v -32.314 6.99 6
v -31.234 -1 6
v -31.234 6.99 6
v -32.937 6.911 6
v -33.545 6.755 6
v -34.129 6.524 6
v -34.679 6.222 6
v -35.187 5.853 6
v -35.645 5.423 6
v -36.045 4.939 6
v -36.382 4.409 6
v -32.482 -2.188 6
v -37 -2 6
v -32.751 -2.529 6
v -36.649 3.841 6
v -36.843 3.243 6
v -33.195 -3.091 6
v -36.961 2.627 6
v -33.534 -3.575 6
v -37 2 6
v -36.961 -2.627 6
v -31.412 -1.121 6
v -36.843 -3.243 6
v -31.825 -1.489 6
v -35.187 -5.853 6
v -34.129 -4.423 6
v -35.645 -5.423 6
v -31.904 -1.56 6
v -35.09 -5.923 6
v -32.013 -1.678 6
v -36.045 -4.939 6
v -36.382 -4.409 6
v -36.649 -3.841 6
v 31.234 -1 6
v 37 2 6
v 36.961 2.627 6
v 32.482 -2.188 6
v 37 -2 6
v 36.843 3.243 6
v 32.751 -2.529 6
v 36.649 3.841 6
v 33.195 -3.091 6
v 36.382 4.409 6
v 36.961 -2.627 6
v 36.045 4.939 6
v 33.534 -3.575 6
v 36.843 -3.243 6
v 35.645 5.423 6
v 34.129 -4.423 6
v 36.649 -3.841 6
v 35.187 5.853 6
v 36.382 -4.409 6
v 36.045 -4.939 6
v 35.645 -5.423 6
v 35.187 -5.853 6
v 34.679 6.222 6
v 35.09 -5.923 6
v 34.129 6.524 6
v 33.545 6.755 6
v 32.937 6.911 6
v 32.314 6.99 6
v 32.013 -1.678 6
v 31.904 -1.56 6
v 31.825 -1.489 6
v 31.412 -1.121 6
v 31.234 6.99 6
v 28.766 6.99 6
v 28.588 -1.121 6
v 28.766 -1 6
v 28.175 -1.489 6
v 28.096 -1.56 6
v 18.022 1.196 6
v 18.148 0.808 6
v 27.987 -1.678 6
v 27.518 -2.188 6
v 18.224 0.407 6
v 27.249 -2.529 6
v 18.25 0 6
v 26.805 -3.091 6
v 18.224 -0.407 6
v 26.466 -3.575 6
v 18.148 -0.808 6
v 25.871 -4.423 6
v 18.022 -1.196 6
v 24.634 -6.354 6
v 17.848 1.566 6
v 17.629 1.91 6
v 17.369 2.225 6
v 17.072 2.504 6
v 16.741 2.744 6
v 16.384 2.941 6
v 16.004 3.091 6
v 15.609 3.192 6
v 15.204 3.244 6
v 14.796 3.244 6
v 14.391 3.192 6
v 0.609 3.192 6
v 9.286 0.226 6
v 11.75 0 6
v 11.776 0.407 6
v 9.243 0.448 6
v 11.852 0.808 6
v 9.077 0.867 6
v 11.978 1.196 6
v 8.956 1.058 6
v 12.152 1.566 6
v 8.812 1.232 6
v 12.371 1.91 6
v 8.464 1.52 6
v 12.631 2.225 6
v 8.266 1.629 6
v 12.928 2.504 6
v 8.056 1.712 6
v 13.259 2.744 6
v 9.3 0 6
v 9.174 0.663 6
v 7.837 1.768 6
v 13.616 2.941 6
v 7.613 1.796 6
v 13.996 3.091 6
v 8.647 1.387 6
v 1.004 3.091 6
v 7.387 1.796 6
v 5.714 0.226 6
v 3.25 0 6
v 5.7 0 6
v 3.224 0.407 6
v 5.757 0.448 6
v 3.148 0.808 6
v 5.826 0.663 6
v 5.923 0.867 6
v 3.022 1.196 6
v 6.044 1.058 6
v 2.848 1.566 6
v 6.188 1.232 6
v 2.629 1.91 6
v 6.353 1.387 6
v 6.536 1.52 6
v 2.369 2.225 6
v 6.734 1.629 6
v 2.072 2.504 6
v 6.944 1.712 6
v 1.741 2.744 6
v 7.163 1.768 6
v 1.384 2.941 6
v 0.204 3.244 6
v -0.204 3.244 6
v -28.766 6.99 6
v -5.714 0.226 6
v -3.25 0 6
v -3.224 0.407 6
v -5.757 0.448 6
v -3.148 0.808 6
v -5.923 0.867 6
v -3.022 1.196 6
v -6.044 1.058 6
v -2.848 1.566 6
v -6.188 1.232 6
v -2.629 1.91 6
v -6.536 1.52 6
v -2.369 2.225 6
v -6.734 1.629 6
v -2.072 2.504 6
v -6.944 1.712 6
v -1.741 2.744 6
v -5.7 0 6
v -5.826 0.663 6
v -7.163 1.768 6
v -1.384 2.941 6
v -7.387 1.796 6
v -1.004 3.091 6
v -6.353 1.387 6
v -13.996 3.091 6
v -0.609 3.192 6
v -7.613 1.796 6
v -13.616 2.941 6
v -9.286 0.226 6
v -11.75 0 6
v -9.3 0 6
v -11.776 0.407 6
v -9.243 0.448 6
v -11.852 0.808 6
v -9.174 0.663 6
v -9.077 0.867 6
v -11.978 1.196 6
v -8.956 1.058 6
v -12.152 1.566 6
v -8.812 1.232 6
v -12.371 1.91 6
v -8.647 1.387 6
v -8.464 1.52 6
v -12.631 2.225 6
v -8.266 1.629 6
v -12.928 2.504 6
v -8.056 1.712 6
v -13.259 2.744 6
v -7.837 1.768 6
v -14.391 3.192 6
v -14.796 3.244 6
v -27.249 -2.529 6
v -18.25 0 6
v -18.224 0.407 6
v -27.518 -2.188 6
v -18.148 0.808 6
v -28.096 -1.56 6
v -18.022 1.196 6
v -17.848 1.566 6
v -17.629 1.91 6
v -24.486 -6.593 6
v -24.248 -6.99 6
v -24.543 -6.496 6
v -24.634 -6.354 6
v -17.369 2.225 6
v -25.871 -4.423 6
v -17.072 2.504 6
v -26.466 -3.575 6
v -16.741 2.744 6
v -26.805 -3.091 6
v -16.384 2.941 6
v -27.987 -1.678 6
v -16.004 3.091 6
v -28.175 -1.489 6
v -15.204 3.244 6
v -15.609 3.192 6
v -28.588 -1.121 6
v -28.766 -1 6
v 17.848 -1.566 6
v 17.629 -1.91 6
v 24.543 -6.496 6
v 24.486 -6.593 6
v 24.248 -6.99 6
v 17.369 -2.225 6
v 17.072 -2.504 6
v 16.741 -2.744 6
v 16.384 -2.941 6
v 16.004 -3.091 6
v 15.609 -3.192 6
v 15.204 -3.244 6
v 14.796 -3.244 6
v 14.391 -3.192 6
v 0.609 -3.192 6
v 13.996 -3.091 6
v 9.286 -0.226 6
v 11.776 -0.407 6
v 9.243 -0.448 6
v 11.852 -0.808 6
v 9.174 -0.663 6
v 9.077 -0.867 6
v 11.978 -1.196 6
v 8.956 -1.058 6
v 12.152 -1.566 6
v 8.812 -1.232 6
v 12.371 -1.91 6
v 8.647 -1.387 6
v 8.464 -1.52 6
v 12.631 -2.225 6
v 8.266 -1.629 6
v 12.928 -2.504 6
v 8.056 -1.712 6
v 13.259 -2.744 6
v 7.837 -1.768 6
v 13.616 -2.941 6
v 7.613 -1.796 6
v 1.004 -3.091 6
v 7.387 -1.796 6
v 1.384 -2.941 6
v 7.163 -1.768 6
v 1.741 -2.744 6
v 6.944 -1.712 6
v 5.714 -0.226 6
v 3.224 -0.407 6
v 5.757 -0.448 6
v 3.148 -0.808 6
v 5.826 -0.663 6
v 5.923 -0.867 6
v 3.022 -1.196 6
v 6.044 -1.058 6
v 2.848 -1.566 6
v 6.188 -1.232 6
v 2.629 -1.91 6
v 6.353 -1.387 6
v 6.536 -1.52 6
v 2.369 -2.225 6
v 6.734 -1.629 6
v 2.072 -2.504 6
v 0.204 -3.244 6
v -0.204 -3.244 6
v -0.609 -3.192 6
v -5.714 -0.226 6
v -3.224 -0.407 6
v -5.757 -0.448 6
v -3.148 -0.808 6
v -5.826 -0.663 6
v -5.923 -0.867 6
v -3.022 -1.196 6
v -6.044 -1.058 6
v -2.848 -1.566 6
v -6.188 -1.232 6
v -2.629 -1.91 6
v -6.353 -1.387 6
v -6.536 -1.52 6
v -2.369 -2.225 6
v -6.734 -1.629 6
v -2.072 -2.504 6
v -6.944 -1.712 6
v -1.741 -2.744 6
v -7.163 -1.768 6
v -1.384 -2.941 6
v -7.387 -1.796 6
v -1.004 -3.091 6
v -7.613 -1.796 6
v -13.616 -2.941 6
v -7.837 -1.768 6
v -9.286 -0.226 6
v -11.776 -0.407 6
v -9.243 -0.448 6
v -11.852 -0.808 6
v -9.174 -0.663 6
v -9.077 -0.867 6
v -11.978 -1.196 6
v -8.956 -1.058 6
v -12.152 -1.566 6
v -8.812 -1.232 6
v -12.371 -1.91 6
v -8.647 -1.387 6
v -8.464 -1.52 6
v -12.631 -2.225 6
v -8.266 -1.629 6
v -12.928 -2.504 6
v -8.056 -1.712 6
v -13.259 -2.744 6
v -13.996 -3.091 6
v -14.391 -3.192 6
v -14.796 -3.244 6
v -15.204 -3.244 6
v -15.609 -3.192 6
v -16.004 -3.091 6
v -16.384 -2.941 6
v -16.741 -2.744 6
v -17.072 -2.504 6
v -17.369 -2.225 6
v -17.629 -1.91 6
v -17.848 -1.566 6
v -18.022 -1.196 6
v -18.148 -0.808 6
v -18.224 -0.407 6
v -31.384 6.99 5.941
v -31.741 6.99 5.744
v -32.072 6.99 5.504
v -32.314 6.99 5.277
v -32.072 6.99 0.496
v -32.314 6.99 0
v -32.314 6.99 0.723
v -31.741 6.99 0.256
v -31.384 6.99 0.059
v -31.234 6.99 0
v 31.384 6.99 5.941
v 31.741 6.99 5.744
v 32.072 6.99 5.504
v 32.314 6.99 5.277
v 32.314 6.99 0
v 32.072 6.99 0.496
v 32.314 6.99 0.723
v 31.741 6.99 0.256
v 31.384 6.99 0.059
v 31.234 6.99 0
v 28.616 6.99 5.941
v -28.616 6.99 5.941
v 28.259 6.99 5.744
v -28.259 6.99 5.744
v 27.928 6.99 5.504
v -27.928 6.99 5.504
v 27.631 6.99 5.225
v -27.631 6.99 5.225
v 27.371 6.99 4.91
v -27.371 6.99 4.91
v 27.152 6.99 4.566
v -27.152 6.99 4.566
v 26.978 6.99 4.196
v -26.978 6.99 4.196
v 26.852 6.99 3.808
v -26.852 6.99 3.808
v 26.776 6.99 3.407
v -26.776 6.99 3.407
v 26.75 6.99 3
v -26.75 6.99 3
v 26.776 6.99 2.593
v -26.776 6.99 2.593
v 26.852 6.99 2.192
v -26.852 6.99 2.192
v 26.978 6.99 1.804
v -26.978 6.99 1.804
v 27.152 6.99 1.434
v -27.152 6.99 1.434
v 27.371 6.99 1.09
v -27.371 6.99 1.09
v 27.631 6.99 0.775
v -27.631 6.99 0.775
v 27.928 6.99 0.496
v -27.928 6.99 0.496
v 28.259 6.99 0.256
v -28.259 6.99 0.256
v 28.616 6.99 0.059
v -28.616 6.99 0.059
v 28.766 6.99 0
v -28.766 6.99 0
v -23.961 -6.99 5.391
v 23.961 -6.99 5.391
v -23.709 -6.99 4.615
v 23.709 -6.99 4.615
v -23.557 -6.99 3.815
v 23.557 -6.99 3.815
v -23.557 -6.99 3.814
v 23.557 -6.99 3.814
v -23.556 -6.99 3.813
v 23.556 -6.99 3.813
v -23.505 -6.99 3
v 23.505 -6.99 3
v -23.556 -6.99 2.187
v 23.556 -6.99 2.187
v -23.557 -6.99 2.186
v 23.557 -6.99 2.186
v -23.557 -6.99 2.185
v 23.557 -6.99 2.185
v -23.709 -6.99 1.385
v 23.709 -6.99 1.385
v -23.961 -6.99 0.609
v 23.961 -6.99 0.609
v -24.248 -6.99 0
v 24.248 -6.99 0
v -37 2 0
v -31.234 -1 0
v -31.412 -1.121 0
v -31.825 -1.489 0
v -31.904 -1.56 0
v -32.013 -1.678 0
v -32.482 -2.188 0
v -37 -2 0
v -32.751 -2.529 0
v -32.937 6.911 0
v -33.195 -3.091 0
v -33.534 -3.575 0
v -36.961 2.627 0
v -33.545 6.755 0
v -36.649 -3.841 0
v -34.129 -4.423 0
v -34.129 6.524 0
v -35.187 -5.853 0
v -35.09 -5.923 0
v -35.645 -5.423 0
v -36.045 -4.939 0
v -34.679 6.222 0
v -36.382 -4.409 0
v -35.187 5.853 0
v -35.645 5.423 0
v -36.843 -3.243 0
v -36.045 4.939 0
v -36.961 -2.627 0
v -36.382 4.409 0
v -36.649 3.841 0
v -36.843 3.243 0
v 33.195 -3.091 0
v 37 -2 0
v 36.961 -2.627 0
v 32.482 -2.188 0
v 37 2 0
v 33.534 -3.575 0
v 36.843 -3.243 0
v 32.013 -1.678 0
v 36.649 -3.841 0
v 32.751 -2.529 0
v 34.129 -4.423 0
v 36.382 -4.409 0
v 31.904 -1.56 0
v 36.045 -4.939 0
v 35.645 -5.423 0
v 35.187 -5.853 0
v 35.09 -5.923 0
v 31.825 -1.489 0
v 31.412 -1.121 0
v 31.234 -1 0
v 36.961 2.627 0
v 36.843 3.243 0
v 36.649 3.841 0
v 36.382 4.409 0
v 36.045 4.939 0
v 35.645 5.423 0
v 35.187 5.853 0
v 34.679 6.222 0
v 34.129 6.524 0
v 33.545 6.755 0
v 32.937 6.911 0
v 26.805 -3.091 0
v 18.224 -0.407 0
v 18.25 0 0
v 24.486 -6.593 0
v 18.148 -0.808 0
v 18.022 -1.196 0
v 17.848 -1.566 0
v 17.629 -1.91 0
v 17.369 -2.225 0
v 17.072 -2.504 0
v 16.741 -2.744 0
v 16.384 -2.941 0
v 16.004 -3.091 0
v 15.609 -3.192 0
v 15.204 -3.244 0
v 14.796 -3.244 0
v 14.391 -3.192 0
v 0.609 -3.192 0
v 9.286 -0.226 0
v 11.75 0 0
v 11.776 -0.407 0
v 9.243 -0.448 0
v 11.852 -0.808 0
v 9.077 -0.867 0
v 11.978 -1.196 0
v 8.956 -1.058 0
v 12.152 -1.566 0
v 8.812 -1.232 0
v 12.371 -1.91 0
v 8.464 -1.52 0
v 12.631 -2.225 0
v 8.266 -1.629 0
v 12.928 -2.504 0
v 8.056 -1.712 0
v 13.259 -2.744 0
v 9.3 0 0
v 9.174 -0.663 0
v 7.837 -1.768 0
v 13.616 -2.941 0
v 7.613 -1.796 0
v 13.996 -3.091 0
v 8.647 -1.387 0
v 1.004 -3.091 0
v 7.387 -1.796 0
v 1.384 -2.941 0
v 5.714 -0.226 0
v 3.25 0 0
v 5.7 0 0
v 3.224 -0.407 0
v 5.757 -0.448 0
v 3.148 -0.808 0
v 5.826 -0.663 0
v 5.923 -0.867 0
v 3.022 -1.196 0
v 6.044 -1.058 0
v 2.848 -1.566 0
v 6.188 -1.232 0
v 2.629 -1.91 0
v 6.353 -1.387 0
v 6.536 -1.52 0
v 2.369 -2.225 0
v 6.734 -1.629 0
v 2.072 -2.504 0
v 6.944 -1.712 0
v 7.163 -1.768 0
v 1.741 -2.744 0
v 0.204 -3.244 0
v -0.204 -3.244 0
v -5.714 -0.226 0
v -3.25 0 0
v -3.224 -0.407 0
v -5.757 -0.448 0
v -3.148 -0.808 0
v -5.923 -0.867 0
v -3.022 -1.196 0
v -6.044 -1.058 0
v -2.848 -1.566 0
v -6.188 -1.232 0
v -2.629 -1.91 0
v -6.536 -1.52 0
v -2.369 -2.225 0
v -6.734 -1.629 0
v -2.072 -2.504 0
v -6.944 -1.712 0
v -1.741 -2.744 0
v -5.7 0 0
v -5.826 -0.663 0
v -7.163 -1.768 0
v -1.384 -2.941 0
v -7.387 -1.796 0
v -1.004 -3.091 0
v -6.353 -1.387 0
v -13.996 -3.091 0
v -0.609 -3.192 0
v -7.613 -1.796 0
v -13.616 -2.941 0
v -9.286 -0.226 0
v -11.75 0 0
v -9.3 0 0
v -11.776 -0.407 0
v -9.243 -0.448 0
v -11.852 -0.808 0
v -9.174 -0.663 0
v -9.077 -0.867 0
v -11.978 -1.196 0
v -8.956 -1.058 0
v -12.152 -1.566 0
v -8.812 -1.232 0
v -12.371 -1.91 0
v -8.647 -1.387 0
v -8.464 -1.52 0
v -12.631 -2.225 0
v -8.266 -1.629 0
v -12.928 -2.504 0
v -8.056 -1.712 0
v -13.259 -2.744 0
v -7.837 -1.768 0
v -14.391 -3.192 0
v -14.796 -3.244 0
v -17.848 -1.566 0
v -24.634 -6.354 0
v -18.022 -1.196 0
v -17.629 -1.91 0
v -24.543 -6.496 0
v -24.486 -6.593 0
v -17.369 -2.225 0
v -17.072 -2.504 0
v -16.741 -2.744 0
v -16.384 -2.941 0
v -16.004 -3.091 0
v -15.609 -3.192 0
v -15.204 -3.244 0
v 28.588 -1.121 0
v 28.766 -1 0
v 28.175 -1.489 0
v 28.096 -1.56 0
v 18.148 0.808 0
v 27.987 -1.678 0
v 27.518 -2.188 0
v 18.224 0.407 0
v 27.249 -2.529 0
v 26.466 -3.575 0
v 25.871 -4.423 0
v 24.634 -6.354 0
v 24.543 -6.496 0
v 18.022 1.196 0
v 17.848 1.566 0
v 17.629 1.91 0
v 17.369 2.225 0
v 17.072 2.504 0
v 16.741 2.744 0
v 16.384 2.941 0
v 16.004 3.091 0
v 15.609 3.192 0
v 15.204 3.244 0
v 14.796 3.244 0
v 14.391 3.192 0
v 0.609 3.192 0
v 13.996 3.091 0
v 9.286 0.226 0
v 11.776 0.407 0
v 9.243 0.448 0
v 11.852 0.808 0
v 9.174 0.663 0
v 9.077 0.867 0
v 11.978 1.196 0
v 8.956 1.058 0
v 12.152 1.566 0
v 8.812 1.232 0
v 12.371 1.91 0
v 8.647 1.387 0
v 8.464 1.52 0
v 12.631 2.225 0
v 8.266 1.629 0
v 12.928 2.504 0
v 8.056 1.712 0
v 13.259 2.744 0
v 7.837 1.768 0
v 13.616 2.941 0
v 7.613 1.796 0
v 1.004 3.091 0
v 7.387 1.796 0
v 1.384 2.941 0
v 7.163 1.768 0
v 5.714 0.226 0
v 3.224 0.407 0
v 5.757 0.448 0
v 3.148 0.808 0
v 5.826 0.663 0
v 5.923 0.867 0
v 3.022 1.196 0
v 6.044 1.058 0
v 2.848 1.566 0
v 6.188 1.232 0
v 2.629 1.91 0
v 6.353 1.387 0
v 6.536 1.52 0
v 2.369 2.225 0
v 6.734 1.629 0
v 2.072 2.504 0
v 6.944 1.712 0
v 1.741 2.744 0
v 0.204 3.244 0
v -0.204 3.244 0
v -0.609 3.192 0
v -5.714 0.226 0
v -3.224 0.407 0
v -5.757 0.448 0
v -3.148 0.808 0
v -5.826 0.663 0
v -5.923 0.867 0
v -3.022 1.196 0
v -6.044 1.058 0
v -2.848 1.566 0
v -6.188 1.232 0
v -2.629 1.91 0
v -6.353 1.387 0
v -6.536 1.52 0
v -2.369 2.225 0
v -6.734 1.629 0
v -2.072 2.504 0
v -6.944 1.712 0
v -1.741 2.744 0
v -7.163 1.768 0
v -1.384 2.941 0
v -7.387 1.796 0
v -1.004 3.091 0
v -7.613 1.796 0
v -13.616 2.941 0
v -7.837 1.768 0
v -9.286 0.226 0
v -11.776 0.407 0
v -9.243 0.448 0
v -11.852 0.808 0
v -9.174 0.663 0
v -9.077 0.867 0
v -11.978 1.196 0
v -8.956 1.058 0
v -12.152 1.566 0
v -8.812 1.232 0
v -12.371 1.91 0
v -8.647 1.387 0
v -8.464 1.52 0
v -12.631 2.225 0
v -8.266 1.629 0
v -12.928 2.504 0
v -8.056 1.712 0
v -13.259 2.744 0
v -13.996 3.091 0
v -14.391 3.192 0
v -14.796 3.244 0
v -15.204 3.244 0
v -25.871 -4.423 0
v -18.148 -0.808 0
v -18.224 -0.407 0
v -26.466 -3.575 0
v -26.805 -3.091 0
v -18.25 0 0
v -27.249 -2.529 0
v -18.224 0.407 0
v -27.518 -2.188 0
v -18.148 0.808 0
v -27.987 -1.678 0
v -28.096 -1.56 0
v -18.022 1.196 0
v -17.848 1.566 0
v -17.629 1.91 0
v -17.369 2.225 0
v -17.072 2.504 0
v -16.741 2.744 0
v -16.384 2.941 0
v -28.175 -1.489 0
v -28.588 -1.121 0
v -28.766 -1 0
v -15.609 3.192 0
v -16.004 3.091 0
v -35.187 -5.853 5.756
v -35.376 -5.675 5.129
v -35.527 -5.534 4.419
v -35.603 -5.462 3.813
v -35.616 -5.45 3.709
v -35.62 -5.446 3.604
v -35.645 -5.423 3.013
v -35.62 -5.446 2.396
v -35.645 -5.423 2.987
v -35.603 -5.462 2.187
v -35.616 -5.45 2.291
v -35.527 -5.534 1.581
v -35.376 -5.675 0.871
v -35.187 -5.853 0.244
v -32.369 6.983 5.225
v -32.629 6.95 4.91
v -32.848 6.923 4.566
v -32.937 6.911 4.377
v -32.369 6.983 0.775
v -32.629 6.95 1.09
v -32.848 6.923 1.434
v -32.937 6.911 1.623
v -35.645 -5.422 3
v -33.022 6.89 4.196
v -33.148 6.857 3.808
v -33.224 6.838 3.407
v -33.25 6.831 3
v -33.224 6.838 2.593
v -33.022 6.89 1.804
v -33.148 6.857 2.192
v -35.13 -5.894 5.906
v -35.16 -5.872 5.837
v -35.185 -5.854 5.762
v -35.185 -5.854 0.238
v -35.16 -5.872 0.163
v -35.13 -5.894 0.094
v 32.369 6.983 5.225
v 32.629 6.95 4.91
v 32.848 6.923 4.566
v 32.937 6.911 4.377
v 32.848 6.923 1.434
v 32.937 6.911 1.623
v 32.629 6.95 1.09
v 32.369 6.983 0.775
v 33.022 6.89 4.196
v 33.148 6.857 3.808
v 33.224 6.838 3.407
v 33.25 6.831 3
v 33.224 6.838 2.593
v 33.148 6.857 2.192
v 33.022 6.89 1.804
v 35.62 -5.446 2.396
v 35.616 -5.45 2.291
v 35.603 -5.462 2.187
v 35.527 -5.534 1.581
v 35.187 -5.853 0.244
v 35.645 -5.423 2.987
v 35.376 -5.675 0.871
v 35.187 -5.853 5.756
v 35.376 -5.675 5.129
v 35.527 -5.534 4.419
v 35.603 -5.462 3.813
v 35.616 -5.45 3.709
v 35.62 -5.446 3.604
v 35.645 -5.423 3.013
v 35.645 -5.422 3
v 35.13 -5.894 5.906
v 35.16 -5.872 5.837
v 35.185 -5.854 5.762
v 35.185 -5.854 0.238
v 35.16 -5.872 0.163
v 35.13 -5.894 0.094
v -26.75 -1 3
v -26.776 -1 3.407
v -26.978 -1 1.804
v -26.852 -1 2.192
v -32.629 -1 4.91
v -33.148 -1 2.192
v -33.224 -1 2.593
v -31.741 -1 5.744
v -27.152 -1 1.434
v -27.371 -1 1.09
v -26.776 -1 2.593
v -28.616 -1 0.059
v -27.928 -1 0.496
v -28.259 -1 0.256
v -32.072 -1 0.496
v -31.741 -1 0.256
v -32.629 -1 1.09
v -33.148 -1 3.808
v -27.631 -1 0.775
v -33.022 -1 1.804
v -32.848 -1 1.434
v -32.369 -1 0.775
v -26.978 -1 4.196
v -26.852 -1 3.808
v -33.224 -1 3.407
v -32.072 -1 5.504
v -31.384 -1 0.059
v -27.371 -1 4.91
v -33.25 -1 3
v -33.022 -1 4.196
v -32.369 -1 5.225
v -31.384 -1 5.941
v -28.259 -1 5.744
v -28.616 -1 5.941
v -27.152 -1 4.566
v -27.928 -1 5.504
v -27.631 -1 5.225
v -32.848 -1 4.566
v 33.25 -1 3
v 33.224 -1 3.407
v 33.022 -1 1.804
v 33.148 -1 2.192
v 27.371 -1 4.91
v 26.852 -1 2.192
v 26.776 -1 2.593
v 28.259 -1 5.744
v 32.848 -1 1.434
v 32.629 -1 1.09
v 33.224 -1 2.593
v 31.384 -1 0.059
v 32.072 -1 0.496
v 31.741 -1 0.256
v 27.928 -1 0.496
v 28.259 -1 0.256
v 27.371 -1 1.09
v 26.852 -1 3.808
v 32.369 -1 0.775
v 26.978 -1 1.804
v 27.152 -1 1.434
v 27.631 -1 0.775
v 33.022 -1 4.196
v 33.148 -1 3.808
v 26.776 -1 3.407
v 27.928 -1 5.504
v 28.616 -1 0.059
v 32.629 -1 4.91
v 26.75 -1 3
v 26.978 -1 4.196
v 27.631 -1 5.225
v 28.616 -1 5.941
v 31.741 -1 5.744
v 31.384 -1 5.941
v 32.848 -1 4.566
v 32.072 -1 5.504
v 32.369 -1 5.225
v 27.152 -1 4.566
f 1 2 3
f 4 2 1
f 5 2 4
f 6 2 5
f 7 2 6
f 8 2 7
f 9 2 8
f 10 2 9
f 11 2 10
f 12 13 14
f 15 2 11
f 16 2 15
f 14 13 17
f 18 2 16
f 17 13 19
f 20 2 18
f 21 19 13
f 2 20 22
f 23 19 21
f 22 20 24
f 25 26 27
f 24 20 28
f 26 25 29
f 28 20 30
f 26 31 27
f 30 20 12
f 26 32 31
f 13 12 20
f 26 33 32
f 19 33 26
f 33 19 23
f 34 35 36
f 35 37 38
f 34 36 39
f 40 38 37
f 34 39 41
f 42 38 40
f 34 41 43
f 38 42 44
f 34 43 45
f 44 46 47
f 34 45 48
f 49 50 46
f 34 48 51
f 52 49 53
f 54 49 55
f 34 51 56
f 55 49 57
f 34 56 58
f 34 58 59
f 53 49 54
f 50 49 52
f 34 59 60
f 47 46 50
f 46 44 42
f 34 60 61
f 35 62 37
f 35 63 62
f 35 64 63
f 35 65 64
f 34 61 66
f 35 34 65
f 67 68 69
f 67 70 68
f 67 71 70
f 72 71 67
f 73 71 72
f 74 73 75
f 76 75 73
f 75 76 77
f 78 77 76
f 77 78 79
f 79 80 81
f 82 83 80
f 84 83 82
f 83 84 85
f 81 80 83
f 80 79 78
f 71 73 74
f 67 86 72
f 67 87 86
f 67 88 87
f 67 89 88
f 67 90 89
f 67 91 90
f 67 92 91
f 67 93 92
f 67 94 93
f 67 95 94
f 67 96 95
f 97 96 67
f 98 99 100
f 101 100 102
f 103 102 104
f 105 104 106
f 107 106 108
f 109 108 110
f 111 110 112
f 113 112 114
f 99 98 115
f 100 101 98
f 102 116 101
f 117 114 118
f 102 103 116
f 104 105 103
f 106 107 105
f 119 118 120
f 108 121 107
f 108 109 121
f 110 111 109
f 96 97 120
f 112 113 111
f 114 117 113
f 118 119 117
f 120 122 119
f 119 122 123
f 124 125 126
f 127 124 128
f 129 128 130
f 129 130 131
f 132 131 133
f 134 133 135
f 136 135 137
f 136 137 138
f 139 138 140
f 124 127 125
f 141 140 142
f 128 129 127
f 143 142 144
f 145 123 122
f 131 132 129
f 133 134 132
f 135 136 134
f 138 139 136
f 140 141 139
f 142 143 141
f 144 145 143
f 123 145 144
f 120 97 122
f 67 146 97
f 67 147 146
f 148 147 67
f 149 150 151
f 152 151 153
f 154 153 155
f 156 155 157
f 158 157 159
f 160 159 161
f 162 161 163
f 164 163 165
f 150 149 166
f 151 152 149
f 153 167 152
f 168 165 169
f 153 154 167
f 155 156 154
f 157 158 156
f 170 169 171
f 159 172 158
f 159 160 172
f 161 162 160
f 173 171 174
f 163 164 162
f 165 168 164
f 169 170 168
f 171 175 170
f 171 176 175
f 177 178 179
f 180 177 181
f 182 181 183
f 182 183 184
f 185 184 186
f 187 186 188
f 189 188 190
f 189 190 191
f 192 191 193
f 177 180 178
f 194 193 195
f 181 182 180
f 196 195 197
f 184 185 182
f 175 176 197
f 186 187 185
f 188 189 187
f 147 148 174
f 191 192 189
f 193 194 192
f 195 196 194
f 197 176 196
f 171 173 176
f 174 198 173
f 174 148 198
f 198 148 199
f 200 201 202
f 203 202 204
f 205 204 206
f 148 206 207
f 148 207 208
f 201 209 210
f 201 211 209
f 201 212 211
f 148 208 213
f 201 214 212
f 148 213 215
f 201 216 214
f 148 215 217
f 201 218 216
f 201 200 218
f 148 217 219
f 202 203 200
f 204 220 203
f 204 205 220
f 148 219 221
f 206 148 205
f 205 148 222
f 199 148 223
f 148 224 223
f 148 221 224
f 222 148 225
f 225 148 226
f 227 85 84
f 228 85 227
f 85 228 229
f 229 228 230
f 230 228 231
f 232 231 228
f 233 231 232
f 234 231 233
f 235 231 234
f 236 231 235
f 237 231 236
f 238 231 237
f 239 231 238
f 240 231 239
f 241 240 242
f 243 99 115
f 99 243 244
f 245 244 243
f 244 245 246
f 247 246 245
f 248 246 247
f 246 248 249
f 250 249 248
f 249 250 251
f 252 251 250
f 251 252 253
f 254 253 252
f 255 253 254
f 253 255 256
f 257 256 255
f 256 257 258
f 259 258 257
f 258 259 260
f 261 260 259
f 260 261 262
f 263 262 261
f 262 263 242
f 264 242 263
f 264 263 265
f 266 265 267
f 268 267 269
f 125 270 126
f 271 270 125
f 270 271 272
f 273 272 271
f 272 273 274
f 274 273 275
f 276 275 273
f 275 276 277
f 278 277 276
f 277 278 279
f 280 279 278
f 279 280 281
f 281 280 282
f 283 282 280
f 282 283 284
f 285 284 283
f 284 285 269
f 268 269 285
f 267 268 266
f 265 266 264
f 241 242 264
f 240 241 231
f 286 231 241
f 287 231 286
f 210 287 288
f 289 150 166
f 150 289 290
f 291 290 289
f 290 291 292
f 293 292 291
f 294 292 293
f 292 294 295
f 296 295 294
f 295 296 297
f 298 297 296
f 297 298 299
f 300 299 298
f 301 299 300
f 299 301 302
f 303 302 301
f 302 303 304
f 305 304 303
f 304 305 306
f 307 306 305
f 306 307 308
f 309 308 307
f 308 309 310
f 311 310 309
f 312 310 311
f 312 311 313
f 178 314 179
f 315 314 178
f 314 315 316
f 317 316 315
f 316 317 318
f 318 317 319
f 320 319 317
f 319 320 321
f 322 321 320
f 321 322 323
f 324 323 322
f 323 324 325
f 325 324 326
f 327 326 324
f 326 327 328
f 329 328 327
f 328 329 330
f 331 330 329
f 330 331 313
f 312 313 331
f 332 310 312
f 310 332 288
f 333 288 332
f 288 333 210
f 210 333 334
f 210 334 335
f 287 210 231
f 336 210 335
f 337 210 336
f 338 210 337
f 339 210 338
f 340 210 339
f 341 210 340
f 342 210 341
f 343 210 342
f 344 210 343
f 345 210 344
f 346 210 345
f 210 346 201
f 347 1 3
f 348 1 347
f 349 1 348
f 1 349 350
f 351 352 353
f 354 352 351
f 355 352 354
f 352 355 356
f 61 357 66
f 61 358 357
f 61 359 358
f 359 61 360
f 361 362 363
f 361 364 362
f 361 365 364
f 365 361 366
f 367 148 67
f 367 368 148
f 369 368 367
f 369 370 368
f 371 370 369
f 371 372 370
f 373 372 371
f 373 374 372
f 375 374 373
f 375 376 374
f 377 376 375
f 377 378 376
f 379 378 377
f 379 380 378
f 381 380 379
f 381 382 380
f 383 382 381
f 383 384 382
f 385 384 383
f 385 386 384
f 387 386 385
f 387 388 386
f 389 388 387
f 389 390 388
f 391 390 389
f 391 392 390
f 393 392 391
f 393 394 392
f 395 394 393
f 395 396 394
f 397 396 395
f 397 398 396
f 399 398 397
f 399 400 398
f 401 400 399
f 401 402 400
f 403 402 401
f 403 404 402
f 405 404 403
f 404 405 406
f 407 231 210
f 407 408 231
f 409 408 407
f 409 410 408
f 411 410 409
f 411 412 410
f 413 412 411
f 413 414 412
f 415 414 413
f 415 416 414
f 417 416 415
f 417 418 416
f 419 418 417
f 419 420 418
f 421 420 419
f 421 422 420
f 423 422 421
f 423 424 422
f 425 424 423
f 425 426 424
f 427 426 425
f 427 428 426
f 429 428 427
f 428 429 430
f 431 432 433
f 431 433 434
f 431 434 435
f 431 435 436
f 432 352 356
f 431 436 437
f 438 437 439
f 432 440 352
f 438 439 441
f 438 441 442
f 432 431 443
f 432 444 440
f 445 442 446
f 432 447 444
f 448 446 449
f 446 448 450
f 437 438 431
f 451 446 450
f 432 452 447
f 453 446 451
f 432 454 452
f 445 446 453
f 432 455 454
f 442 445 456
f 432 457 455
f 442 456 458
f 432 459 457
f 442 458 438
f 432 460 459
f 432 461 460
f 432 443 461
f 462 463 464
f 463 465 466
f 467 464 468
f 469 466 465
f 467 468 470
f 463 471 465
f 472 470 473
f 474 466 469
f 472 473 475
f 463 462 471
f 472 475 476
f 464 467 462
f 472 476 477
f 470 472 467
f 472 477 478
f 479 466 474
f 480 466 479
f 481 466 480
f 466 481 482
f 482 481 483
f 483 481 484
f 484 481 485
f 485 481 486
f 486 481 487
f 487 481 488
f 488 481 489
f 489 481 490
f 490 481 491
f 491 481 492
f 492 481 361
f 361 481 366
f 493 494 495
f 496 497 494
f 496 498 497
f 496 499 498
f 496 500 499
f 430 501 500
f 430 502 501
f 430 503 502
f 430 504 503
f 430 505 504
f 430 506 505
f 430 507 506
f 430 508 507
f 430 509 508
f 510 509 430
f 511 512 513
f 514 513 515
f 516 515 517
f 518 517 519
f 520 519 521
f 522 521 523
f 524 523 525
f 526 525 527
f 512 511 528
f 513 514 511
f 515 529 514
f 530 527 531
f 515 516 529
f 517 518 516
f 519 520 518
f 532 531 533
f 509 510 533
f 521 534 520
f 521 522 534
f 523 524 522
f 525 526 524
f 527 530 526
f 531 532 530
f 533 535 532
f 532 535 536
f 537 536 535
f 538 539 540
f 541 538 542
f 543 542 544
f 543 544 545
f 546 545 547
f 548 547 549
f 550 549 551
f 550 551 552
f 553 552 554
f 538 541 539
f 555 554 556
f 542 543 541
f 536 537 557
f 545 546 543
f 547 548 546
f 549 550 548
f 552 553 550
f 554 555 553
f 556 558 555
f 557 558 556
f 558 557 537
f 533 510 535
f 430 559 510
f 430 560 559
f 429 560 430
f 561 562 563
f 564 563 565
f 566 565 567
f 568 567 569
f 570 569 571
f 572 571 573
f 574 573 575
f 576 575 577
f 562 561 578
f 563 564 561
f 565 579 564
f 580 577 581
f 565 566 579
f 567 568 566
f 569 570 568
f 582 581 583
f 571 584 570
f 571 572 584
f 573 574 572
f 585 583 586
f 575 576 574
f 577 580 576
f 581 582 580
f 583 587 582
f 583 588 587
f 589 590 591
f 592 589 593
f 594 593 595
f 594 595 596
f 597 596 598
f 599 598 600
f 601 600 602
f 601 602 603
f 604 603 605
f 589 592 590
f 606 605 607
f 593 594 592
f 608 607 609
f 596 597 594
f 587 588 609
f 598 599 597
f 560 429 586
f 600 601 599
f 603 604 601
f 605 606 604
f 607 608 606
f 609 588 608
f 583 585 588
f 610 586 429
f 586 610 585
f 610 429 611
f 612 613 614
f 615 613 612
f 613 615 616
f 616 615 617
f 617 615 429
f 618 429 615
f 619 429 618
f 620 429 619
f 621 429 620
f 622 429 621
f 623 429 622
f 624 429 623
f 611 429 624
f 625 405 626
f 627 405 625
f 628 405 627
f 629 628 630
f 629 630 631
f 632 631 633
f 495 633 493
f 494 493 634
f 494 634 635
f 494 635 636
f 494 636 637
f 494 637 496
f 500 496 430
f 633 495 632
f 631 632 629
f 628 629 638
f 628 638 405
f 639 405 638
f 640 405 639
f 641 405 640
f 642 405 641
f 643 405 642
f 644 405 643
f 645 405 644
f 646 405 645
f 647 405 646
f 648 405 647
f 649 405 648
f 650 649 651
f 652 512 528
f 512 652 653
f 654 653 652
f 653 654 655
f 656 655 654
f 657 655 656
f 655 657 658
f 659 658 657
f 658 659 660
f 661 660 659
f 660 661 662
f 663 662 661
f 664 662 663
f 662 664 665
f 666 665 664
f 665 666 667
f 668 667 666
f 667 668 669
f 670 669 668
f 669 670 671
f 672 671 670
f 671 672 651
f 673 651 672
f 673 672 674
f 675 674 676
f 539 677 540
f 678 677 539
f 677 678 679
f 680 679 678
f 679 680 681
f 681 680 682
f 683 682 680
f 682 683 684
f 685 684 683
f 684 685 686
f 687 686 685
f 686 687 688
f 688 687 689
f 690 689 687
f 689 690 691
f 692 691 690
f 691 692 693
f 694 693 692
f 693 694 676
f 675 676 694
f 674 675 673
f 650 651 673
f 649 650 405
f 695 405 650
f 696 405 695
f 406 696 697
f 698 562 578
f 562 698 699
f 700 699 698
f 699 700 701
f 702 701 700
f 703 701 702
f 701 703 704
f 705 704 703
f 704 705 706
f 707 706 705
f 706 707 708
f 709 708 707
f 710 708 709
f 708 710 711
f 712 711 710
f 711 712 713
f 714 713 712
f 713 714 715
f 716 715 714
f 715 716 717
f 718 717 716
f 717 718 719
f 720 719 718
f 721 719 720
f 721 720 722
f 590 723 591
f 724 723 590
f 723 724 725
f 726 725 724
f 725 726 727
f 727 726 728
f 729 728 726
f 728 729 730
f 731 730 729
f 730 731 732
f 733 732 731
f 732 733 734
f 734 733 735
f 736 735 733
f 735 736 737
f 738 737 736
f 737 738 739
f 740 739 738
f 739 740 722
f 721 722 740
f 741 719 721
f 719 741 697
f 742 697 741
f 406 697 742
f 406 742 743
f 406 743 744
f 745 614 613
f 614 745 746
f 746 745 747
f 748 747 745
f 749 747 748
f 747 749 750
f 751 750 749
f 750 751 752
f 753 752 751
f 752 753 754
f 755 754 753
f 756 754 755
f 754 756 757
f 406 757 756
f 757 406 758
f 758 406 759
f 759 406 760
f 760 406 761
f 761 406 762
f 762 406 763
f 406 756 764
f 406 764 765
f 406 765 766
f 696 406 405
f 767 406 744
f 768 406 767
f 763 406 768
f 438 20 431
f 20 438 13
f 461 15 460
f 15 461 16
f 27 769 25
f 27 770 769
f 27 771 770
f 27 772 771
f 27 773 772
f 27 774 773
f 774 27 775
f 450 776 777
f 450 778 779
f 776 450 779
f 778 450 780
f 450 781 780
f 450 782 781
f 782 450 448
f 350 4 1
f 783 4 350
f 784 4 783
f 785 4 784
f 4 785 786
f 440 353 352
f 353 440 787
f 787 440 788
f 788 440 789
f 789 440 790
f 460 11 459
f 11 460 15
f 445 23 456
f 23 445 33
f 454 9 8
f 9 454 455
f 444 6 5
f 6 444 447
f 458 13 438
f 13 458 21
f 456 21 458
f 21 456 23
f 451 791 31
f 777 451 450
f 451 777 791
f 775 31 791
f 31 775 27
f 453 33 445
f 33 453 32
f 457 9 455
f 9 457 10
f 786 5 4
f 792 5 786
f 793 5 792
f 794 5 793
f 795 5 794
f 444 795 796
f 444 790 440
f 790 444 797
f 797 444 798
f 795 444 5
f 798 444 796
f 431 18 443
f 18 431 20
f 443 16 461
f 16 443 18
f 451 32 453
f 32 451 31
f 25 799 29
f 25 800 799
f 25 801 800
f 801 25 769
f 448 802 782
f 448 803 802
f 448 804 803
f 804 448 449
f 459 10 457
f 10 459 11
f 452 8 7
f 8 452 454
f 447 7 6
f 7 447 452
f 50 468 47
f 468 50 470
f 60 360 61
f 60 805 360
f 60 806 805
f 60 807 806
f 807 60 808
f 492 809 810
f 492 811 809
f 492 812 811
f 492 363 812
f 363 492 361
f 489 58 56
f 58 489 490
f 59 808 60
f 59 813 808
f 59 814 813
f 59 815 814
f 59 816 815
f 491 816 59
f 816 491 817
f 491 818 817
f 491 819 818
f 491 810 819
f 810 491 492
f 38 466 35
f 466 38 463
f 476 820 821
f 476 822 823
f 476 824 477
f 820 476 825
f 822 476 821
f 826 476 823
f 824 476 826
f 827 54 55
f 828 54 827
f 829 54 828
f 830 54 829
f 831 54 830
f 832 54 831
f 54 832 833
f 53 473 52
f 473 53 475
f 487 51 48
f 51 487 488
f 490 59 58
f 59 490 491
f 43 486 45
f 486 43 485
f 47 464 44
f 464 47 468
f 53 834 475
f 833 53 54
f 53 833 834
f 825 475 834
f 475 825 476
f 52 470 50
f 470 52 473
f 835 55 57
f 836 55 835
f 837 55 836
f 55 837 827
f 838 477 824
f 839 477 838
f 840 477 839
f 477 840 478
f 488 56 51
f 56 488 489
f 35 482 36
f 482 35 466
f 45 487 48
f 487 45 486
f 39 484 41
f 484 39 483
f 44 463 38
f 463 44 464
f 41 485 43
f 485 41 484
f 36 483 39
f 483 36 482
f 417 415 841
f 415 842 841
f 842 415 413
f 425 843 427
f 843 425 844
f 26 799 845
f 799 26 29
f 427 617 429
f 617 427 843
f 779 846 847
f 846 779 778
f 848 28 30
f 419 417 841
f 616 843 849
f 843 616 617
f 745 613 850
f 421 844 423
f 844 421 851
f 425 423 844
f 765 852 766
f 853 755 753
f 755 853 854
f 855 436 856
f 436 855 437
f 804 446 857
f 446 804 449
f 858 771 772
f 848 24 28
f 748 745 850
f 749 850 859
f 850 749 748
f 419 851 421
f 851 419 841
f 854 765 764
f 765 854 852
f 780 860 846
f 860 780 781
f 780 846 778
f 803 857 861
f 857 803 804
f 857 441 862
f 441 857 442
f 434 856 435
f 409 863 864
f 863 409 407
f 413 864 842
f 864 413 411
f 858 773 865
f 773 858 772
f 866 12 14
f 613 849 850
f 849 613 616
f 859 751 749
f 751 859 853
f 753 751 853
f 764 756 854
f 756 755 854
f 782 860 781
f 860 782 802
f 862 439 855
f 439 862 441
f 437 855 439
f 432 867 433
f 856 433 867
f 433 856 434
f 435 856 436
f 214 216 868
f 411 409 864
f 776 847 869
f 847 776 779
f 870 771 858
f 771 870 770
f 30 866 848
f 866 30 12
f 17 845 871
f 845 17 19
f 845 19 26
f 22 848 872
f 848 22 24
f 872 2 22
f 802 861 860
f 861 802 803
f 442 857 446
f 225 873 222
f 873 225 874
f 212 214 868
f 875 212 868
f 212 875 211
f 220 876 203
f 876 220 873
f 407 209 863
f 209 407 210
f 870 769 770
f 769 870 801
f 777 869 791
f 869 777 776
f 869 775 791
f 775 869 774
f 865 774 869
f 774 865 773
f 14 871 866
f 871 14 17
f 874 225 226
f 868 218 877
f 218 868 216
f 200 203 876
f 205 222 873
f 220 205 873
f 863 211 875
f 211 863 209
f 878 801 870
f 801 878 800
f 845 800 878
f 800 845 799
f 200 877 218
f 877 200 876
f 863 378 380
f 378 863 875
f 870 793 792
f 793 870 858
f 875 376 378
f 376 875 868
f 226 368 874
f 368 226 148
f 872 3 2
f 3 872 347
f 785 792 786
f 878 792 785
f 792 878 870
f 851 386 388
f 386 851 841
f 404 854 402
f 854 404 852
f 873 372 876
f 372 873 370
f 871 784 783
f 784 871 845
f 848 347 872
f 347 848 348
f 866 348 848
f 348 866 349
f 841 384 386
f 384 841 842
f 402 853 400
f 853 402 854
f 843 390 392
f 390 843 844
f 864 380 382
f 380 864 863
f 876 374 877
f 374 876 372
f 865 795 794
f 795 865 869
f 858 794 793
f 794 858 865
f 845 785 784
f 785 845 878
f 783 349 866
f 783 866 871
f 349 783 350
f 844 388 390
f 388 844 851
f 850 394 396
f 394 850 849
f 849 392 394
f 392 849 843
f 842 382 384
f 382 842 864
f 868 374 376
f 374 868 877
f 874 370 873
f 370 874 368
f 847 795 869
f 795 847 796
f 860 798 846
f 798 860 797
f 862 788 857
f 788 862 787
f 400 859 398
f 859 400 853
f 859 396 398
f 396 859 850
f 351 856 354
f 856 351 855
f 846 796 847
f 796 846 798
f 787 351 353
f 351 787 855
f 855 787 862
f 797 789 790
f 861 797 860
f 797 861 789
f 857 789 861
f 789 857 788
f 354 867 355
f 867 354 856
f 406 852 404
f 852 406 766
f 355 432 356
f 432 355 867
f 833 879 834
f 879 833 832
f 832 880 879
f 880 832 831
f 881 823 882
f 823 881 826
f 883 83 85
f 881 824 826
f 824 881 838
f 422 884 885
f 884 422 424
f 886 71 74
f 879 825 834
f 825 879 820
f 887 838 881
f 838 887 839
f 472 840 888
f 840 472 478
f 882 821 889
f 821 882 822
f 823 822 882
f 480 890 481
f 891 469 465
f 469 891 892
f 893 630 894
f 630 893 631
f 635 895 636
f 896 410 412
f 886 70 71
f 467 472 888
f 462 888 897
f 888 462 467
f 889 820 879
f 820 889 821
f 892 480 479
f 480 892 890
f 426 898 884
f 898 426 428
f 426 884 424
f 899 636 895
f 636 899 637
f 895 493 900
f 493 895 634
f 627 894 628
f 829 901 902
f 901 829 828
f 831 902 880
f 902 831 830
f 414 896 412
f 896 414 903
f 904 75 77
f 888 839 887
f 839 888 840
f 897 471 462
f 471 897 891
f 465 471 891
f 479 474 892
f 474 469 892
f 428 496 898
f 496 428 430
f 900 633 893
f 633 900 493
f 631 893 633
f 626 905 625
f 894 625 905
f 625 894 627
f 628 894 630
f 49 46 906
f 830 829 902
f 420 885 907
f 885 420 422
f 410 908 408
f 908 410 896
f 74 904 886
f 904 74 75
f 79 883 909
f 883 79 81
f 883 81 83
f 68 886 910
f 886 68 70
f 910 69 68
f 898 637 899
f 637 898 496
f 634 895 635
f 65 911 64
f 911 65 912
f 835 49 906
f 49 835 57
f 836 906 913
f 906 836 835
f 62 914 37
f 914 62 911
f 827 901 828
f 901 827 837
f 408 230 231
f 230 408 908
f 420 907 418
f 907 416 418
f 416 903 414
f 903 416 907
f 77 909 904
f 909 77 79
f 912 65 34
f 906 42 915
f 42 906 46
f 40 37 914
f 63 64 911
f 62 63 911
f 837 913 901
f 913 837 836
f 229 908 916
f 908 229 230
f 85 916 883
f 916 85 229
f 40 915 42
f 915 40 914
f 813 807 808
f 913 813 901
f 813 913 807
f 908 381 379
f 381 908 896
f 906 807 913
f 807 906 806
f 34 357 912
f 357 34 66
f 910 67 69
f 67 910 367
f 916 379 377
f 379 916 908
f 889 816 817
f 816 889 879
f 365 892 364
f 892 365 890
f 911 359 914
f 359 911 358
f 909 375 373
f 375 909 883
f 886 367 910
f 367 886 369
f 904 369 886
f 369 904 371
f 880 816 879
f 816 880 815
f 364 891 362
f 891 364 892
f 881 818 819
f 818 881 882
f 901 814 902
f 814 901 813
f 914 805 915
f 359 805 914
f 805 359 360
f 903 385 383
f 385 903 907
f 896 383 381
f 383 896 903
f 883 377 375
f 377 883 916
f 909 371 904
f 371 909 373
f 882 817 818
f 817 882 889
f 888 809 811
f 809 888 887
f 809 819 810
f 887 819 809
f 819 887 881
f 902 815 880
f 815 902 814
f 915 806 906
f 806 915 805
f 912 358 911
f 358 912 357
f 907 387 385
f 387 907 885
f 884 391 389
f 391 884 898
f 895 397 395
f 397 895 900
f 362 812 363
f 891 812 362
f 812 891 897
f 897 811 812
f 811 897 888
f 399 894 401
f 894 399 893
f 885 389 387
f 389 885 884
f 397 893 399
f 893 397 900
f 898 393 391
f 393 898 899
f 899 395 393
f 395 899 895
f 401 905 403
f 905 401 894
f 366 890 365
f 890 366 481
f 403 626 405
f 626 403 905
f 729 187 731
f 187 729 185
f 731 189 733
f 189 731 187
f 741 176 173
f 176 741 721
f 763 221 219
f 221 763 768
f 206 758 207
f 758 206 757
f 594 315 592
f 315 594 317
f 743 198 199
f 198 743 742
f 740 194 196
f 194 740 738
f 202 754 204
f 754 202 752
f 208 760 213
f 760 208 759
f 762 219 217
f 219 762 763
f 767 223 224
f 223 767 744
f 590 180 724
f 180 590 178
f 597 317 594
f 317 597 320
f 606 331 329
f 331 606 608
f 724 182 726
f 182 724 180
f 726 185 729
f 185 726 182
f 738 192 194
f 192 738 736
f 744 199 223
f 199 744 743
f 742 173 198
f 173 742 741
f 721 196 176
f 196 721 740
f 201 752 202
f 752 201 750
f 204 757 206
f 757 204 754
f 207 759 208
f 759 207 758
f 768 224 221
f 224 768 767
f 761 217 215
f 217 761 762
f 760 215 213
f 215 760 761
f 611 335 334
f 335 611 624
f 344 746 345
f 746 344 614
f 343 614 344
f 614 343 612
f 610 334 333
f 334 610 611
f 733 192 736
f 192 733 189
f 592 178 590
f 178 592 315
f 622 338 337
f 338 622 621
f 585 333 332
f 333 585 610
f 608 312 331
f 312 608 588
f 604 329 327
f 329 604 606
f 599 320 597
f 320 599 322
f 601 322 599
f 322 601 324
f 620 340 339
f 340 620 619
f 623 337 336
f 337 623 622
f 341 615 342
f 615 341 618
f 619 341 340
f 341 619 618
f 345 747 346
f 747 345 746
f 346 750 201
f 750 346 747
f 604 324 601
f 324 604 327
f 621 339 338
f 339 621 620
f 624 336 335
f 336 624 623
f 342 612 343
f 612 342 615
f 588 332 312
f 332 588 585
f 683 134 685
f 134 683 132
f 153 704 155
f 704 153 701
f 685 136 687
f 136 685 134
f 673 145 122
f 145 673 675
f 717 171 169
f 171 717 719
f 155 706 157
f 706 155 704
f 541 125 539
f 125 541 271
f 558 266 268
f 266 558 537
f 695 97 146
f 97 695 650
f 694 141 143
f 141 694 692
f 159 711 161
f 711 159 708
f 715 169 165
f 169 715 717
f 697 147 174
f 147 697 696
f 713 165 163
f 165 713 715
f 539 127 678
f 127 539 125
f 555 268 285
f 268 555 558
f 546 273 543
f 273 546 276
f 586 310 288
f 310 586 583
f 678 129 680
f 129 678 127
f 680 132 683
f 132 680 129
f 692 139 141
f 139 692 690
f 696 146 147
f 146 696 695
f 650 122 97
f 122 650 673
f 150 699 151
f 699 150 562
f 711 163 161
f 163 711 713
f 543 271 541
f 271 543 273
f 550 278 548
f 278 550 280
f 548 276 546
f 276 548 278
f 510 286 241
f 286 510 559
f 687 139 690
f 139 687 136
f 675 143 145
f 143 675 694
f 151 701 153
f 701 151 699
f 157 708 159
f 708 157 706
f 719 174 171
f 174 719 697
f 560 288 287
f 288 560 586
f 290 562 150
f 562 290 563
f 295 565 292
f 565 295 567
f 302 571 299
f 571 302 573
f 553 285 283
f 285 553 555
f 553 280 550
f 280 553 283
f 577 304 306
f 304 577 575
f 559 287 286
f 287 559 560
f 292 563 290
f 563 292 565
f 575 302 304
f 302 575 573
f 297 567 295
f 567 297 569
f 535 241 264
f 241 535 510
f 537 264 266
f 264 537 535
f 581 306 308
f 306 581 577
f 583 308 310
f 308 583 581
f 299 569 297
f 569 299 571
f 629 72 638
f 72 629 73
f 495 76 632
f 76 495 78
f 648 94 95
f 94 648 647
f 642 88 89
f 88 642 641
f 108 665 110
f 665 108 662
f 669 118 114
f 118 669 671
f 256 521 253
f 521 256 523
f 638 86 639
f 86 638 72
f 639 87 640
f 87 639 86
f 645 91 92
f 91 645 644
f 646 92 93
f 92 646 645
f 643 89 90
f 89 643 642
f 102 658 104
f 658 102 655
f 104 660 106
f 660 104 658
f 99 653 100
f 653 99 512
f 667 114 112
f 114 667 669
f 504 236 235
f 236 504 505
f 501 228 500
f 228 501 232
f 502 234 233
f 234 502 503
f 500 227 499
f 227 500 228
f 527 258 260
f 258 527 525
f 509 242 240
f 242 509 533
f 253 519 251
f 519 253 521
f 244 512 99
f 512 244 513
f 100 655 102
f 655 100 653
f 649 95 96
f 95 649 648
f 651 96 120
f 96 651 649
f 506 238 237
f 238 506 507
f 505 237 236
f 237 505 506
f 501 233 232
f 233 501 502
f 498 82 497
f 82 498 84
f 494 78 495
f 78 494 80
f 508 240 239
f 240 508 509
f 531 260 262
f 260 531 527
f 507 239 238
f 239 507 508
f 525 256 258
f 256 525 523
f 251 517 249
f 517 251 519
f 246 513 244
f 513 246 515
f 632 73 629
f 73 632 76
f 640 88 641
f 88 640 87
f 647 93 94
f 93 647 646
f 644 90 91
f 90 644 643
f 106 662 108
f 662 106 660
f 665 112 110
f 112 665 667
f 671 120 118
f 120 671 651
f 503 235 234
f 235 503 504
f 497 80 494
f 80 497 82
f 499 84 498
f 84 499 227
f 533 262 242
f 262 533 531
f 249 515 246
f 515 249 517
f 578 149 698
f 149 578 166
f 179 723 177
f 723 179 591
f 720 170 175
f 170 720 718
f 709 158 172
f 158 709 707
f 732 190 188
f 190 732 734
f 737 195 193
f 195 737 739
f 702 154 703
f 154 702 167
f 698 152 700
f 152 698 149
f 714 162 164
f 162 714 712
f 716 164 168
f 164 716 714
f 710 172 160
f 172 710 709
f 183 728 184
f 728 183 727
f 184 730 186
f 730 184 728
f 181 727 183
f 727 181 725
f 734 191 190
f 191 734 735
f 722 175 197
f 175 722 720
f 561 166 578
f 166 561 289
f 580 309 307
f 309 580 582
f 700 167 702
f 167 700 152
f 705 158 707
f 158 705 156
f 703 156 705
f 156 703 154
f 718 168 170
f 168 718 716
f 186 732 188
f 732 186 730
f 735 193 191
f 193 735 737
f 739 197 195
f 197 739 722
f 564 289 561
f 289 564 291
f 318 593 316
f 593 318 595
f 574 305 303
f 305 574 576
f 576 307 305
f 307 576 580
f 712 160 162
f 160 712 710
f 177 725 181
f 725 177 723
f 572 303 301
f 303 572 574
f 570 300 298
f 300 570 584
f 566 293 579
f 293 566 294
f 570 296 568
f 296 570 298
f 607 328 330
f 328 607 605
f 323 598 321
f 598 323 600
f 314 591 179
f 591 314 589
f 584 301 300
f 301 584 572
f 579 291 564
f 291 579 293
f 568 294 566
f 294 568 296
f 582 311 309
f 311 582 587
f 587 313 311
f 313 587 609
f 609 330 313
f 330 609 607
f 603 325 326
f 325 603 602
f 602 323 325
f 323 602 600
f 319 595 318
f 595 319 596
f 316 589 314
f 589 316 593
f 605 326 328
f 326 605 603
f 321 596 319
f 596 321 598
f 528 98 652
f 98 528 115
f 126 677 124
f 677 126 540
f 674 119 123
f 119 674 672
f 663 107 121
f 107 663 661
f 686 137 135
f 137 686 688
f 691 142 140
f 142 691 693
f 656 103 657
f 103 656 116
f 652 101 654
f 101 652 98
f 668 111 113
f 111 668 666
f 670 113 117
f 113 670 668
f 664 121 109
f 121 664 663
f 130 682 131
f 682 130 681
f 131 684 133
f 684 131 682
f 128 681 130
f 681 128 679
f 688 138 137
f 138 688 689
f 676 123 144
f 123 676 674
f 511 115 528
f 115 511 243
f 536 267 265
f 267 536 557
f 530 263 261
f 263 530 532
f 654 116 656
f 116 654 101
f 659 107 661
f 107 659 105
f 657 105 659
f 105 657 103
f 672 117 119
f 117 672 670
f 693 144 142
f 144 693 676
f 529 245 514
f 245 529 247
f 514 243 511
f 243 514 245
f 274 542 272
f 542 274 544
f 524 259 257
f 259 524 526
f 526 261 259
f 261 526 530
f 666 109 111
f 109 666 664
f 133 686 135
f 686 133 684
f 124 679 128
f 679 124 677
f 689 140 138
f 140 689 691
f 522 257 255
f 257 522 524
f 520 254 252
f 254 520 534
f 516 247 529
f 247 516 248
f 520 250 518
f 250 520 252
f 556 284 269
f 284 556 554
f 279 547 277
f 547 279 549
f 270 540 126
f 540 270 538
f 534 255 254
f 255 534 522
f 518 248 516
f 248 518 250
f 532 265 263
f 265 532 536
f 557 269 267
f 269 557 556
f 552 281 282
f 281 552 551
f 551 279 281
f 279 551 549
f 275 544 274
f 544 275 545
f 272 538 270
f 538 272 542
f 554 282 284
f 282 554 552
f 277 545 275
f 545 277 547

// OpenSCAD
$fn = 50;


difference() {
	union() {
		hull() {
			translate(v = [-17.0000000000, 2.0000000000, 0]) {
				cylinder(h = 6, r = 5);
			}
			translate(v = [17.0000000000, 2.0000000000, 0]) {
				cylinder(h = 6, r = 5);
			}
			translate(v = [-17.0000000000, -2.0000000000, 0]) {
				cylinder(h = 6, r = 5);
			}
			translate(v = [17.0000000000, -2.0000000000, 0]) {
				cylinder(h = 6, r = 5);
			}
		}
		translate(v = [-22.5000000000, 0.0000000000, 0]) {
			hull() {
				translate(v = [-9.5000000000, 2.0000000000, 0]) {
					cylinder(h = 6, r = 5);
				}
				translate(v = [9.5000000000, 2.0000000000, 0]) {
					cylinder(h = 6, r = 5);
				}
				translate(v = [-9.5000000000, -2.0000000000, 0]) {
					cylinder(h = 6, r = 5);
				}
				translate(v = [9.5000000000, -2.0000000000, 0]) {
					cylinder(h = 6, r = 5);
				}
			}
		}
		translate(v = [22.5000000000, 0.0000000000, 0]) {
			hull() {
				translate(v = [-9.5000000000, 2.0000000000, 0]) {
					cylinder(h = 6, r = 5);
				}
				translate(v = [9.5000000000, 2.0000000000, 0]) {
					cylinder(h = 6, r = 5);
				}
				translate(v = [-9.5000000000, -2.0000000000, 0]) {
					cylinder(h = 6, r = 5);
				}
				translate(v = [9.5000000000, -2.0000000000, 0]) {
					cylinder(h = 6, r = 5);
				}
			}
		}
	}
	union() {
		translate(v = [-30.0000000000, -7.0000000000, 3.0000000000]) {
			rotate(a = [90, 0, 0]) {
				difference() {
					union() {
						#translate(v = [0, 0, -14.0000000000]) {
							cylinder(h = 14, r = 2.2500000000);
						}
						#translate(v = [0, 0, -6]) {
							cylinder(h = 6, r1 = 3.2500000000, r2 = 6.5000000000);
						}
						#translate(v = [0, 0, -14.0000000000]) {
							cylinder(h = 14, r = 3.2500000000);
						}
						#translate(v = [0, 0, -14.0000000000]) {
							cylinder(h = 14, r = 2.2500000000);
						}
					}
					union();
				}
			}
		}
		translate(v = [30.0000000000, -7.0000000000, 3.0000000000]) {
			rotate(a = [90, 0, 0]) {
				difference() {
					union() {
						#translate(v = [0, 0, -14.0000000000]) {
							cylinder(h = 14, r = 2.2500000000);
						}
						#translate(v = [0, 0, -6]) {
							cylinder(h = 6, r1 = 3.2500000000, r2 = 6.5000000000);
						}
						#translate(v = [0, 0, -14.0000000000]) {
							cylinder(h = 14, r = 3.2500000000);
						}
						#translate(v = [0, 0, -14.0000000000]) {
							cylinder(h = 14, r = 2.2500000000);
						}
					}
					union();
				}
			}
		}
		translate(v = [-15.0000000000, 0.0000000000, 0]) {
			translate(v = [0, 0, -100]) {
				cylinder(h = 200, r = 3.2500000000);
			}
		}
		translate(v = [0, 0, -100]) {
			cylinder(h = 200, r = 3.2500000000);
		}
		translate(v = [15.0000000000, 0.0000000000, 0]) {
			translate(v = [0, 0, -100]) {
				cylinder(h = 200, r = 3.2500000000);
			}
		}
		translate(v = [-15.0000000000, 0.0000000000, 0]) {
			translate(v = [0, 0, -100]) {
				cylinder(h = 200, r = 1.8000000000);
			}
		}
		translate(v = [-7.5000000000, 0.0000000000, 0]) {
			translate(v = [0, 0, -100]) {
				cylinder(h = 200, r = 1.8000000000);
			}
		}
		translate(v = [0, 0, -100]) {
			cylinder(h = 200, r = 1.8000000000);
		}
		translate(v = [7.5000000000, 0.0000000000, 0]) {
			translate(v = [0, 0, -100]) {
				cylinder(h = 200, r = 1.8000000000);
			}
		}
		translate(v = [15.0000000000, 0.0000000000, 0]) {
			translate(v = [0, 0, -100]) {
				cylinder(h = 200, r = 1.8000000000);
			}
		}
	}
}
